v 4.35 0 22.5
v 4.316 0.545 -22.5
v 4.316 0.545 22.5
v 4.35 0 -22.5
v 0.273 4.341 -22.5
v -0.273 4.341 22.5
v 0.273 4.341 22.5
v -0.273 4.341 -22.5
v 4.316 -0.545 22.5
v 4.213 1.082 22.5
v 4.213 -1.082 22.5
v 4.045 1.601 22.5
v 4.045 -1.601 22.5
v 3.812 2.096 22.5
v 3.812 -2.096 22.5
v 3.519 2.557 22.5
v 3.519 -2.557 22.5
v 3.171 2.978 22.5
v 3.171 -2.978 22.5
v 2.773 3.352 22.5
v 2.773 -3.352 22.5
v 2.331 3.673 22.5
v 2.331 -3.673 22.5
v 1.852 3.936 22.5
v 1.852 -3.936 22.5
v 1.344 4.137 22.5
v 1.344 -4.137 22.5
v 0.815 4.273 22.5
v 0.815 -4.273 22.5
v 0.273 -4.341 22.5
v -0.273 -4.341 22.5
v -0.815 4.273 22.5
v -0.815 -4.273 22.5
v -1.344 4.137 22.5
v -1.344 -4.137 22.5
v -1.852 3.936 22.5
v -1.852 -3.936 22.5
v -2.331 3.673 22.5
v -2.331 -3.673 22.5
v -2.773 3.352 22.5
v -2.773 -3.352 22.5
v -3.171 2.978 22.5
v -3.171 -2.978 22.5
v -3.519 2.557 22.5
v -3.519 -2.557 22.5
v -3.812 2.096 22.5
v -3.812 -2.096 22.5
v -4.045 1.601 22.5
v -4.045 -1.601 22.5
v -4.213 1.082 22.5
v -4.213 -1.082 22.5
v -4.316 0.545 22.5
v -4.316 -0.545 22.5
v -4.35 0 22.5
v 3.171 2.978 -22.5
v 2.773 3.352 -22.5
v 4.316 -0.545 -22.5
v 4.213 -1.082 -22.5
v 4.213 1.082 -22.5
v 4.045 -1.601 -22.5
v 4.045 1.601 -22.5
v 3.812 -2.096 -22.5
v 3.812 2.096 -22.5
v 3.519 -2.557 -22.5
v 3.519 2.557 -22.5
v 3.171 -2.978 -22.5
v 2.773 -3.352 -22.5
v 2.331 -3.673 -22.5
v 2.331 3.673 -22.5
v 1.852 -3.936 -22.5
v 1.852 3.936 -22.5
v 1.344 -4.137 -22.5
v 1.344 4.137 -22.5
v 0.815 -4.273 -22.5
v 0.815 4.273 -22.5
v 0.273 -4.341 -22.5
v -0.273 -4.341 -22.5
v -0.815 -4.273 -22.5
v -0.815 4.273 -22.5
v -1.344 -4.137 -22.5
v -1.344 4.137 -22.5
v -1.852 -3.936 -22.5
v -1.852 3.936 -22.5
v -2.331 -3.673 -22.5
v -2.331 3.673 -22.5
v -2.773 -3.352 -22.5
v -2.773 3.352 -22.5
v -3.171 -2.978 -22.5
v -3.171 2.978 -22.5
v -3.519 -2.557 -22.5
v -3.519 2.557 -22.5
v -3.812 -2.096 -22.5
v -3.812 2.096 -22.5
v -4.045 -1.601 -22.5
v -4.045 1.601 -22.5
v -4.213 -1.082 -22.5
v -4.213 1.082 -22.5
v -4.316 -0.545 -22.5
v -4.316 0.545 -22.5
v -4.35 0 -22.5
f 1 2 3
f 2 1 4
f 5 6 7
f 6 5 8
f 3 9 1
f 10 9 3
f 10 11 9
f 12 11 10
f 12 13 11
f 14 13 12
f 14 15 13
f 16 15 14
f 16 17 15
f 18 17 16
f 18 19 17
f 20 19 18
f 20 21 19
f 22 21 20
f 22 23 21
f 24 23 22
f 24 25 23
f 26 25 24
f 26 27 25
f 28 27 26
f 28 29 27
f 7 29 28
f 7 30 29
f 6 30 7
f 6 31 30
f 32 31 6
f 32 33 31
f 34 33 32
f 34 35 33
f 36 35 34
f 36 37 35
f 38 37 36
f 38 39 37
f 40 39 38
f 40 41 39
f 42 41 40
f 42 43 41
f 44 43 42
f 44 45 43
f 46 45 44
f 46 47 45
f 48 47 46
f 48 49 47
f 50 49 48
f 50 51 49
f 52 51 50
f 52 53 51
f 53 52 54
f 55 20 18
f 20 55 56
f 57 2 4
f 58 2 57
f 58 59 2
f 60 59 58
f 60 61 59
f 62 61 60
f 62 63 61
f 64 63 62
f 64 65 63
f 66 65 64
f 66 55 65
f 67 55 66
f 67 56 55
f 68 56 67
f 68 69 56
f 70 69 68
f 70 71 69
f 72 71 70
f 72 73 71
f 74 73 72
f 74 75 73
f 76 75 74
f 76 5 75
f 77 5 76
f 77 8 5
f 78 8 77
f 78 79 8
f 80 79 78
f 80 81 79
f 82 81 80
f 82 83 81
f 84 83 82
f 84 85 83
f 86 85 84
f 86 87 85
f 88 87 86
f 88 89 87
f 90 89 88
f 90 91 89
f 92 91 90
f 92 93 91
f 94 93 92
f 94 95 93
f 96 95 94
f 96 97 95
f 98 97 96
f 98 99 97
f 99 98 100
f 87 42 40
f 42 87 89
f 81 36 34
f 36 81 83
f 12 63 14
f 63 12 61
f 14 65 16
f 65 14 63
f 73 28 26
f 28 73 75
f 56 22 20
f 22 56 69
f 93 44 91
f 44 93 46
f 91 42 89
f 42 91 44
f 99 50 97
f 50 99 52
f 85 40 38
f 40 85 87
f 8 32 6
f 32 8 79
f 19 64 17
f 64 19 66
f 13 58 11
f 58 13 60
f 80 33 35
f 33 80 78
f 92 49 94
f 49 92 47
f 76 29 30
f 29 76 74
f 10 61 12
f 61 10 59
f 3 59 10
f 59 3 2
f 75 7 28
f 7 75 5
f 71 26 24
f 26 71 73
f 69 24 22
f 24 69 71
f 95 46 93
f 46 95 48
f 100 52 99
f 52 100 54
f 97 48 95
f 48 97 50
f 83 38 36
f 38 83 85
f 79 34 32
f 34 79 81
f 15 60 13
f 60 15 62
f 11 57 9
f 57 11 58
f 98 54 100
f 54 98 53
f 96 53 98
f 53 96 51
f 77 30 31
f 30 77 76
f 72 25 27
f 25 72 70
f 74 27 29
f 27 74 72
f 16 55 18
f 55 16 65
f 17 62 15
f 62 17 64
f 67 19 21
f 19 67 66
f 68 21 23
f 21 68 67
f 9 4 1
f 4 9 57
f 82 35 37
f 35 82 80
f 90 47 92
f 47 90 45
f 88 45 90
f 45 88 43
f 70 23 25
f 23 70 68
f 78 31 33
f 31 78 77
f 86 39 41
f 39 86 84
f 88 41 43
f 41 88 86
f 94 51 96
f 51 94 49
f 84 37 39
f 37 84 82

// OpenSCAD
$fn = 50;


difference() {
	union() {
		translate(v = [0, 0, -22.5000000000]) {
			cylinder(h = 45, r = 4.3500000000);
		}
	}
	union() {
		translate(v = [0, 0, -100.0000000000]) {
			cylinder(h = 200, r = 0);
		}
	}
}
